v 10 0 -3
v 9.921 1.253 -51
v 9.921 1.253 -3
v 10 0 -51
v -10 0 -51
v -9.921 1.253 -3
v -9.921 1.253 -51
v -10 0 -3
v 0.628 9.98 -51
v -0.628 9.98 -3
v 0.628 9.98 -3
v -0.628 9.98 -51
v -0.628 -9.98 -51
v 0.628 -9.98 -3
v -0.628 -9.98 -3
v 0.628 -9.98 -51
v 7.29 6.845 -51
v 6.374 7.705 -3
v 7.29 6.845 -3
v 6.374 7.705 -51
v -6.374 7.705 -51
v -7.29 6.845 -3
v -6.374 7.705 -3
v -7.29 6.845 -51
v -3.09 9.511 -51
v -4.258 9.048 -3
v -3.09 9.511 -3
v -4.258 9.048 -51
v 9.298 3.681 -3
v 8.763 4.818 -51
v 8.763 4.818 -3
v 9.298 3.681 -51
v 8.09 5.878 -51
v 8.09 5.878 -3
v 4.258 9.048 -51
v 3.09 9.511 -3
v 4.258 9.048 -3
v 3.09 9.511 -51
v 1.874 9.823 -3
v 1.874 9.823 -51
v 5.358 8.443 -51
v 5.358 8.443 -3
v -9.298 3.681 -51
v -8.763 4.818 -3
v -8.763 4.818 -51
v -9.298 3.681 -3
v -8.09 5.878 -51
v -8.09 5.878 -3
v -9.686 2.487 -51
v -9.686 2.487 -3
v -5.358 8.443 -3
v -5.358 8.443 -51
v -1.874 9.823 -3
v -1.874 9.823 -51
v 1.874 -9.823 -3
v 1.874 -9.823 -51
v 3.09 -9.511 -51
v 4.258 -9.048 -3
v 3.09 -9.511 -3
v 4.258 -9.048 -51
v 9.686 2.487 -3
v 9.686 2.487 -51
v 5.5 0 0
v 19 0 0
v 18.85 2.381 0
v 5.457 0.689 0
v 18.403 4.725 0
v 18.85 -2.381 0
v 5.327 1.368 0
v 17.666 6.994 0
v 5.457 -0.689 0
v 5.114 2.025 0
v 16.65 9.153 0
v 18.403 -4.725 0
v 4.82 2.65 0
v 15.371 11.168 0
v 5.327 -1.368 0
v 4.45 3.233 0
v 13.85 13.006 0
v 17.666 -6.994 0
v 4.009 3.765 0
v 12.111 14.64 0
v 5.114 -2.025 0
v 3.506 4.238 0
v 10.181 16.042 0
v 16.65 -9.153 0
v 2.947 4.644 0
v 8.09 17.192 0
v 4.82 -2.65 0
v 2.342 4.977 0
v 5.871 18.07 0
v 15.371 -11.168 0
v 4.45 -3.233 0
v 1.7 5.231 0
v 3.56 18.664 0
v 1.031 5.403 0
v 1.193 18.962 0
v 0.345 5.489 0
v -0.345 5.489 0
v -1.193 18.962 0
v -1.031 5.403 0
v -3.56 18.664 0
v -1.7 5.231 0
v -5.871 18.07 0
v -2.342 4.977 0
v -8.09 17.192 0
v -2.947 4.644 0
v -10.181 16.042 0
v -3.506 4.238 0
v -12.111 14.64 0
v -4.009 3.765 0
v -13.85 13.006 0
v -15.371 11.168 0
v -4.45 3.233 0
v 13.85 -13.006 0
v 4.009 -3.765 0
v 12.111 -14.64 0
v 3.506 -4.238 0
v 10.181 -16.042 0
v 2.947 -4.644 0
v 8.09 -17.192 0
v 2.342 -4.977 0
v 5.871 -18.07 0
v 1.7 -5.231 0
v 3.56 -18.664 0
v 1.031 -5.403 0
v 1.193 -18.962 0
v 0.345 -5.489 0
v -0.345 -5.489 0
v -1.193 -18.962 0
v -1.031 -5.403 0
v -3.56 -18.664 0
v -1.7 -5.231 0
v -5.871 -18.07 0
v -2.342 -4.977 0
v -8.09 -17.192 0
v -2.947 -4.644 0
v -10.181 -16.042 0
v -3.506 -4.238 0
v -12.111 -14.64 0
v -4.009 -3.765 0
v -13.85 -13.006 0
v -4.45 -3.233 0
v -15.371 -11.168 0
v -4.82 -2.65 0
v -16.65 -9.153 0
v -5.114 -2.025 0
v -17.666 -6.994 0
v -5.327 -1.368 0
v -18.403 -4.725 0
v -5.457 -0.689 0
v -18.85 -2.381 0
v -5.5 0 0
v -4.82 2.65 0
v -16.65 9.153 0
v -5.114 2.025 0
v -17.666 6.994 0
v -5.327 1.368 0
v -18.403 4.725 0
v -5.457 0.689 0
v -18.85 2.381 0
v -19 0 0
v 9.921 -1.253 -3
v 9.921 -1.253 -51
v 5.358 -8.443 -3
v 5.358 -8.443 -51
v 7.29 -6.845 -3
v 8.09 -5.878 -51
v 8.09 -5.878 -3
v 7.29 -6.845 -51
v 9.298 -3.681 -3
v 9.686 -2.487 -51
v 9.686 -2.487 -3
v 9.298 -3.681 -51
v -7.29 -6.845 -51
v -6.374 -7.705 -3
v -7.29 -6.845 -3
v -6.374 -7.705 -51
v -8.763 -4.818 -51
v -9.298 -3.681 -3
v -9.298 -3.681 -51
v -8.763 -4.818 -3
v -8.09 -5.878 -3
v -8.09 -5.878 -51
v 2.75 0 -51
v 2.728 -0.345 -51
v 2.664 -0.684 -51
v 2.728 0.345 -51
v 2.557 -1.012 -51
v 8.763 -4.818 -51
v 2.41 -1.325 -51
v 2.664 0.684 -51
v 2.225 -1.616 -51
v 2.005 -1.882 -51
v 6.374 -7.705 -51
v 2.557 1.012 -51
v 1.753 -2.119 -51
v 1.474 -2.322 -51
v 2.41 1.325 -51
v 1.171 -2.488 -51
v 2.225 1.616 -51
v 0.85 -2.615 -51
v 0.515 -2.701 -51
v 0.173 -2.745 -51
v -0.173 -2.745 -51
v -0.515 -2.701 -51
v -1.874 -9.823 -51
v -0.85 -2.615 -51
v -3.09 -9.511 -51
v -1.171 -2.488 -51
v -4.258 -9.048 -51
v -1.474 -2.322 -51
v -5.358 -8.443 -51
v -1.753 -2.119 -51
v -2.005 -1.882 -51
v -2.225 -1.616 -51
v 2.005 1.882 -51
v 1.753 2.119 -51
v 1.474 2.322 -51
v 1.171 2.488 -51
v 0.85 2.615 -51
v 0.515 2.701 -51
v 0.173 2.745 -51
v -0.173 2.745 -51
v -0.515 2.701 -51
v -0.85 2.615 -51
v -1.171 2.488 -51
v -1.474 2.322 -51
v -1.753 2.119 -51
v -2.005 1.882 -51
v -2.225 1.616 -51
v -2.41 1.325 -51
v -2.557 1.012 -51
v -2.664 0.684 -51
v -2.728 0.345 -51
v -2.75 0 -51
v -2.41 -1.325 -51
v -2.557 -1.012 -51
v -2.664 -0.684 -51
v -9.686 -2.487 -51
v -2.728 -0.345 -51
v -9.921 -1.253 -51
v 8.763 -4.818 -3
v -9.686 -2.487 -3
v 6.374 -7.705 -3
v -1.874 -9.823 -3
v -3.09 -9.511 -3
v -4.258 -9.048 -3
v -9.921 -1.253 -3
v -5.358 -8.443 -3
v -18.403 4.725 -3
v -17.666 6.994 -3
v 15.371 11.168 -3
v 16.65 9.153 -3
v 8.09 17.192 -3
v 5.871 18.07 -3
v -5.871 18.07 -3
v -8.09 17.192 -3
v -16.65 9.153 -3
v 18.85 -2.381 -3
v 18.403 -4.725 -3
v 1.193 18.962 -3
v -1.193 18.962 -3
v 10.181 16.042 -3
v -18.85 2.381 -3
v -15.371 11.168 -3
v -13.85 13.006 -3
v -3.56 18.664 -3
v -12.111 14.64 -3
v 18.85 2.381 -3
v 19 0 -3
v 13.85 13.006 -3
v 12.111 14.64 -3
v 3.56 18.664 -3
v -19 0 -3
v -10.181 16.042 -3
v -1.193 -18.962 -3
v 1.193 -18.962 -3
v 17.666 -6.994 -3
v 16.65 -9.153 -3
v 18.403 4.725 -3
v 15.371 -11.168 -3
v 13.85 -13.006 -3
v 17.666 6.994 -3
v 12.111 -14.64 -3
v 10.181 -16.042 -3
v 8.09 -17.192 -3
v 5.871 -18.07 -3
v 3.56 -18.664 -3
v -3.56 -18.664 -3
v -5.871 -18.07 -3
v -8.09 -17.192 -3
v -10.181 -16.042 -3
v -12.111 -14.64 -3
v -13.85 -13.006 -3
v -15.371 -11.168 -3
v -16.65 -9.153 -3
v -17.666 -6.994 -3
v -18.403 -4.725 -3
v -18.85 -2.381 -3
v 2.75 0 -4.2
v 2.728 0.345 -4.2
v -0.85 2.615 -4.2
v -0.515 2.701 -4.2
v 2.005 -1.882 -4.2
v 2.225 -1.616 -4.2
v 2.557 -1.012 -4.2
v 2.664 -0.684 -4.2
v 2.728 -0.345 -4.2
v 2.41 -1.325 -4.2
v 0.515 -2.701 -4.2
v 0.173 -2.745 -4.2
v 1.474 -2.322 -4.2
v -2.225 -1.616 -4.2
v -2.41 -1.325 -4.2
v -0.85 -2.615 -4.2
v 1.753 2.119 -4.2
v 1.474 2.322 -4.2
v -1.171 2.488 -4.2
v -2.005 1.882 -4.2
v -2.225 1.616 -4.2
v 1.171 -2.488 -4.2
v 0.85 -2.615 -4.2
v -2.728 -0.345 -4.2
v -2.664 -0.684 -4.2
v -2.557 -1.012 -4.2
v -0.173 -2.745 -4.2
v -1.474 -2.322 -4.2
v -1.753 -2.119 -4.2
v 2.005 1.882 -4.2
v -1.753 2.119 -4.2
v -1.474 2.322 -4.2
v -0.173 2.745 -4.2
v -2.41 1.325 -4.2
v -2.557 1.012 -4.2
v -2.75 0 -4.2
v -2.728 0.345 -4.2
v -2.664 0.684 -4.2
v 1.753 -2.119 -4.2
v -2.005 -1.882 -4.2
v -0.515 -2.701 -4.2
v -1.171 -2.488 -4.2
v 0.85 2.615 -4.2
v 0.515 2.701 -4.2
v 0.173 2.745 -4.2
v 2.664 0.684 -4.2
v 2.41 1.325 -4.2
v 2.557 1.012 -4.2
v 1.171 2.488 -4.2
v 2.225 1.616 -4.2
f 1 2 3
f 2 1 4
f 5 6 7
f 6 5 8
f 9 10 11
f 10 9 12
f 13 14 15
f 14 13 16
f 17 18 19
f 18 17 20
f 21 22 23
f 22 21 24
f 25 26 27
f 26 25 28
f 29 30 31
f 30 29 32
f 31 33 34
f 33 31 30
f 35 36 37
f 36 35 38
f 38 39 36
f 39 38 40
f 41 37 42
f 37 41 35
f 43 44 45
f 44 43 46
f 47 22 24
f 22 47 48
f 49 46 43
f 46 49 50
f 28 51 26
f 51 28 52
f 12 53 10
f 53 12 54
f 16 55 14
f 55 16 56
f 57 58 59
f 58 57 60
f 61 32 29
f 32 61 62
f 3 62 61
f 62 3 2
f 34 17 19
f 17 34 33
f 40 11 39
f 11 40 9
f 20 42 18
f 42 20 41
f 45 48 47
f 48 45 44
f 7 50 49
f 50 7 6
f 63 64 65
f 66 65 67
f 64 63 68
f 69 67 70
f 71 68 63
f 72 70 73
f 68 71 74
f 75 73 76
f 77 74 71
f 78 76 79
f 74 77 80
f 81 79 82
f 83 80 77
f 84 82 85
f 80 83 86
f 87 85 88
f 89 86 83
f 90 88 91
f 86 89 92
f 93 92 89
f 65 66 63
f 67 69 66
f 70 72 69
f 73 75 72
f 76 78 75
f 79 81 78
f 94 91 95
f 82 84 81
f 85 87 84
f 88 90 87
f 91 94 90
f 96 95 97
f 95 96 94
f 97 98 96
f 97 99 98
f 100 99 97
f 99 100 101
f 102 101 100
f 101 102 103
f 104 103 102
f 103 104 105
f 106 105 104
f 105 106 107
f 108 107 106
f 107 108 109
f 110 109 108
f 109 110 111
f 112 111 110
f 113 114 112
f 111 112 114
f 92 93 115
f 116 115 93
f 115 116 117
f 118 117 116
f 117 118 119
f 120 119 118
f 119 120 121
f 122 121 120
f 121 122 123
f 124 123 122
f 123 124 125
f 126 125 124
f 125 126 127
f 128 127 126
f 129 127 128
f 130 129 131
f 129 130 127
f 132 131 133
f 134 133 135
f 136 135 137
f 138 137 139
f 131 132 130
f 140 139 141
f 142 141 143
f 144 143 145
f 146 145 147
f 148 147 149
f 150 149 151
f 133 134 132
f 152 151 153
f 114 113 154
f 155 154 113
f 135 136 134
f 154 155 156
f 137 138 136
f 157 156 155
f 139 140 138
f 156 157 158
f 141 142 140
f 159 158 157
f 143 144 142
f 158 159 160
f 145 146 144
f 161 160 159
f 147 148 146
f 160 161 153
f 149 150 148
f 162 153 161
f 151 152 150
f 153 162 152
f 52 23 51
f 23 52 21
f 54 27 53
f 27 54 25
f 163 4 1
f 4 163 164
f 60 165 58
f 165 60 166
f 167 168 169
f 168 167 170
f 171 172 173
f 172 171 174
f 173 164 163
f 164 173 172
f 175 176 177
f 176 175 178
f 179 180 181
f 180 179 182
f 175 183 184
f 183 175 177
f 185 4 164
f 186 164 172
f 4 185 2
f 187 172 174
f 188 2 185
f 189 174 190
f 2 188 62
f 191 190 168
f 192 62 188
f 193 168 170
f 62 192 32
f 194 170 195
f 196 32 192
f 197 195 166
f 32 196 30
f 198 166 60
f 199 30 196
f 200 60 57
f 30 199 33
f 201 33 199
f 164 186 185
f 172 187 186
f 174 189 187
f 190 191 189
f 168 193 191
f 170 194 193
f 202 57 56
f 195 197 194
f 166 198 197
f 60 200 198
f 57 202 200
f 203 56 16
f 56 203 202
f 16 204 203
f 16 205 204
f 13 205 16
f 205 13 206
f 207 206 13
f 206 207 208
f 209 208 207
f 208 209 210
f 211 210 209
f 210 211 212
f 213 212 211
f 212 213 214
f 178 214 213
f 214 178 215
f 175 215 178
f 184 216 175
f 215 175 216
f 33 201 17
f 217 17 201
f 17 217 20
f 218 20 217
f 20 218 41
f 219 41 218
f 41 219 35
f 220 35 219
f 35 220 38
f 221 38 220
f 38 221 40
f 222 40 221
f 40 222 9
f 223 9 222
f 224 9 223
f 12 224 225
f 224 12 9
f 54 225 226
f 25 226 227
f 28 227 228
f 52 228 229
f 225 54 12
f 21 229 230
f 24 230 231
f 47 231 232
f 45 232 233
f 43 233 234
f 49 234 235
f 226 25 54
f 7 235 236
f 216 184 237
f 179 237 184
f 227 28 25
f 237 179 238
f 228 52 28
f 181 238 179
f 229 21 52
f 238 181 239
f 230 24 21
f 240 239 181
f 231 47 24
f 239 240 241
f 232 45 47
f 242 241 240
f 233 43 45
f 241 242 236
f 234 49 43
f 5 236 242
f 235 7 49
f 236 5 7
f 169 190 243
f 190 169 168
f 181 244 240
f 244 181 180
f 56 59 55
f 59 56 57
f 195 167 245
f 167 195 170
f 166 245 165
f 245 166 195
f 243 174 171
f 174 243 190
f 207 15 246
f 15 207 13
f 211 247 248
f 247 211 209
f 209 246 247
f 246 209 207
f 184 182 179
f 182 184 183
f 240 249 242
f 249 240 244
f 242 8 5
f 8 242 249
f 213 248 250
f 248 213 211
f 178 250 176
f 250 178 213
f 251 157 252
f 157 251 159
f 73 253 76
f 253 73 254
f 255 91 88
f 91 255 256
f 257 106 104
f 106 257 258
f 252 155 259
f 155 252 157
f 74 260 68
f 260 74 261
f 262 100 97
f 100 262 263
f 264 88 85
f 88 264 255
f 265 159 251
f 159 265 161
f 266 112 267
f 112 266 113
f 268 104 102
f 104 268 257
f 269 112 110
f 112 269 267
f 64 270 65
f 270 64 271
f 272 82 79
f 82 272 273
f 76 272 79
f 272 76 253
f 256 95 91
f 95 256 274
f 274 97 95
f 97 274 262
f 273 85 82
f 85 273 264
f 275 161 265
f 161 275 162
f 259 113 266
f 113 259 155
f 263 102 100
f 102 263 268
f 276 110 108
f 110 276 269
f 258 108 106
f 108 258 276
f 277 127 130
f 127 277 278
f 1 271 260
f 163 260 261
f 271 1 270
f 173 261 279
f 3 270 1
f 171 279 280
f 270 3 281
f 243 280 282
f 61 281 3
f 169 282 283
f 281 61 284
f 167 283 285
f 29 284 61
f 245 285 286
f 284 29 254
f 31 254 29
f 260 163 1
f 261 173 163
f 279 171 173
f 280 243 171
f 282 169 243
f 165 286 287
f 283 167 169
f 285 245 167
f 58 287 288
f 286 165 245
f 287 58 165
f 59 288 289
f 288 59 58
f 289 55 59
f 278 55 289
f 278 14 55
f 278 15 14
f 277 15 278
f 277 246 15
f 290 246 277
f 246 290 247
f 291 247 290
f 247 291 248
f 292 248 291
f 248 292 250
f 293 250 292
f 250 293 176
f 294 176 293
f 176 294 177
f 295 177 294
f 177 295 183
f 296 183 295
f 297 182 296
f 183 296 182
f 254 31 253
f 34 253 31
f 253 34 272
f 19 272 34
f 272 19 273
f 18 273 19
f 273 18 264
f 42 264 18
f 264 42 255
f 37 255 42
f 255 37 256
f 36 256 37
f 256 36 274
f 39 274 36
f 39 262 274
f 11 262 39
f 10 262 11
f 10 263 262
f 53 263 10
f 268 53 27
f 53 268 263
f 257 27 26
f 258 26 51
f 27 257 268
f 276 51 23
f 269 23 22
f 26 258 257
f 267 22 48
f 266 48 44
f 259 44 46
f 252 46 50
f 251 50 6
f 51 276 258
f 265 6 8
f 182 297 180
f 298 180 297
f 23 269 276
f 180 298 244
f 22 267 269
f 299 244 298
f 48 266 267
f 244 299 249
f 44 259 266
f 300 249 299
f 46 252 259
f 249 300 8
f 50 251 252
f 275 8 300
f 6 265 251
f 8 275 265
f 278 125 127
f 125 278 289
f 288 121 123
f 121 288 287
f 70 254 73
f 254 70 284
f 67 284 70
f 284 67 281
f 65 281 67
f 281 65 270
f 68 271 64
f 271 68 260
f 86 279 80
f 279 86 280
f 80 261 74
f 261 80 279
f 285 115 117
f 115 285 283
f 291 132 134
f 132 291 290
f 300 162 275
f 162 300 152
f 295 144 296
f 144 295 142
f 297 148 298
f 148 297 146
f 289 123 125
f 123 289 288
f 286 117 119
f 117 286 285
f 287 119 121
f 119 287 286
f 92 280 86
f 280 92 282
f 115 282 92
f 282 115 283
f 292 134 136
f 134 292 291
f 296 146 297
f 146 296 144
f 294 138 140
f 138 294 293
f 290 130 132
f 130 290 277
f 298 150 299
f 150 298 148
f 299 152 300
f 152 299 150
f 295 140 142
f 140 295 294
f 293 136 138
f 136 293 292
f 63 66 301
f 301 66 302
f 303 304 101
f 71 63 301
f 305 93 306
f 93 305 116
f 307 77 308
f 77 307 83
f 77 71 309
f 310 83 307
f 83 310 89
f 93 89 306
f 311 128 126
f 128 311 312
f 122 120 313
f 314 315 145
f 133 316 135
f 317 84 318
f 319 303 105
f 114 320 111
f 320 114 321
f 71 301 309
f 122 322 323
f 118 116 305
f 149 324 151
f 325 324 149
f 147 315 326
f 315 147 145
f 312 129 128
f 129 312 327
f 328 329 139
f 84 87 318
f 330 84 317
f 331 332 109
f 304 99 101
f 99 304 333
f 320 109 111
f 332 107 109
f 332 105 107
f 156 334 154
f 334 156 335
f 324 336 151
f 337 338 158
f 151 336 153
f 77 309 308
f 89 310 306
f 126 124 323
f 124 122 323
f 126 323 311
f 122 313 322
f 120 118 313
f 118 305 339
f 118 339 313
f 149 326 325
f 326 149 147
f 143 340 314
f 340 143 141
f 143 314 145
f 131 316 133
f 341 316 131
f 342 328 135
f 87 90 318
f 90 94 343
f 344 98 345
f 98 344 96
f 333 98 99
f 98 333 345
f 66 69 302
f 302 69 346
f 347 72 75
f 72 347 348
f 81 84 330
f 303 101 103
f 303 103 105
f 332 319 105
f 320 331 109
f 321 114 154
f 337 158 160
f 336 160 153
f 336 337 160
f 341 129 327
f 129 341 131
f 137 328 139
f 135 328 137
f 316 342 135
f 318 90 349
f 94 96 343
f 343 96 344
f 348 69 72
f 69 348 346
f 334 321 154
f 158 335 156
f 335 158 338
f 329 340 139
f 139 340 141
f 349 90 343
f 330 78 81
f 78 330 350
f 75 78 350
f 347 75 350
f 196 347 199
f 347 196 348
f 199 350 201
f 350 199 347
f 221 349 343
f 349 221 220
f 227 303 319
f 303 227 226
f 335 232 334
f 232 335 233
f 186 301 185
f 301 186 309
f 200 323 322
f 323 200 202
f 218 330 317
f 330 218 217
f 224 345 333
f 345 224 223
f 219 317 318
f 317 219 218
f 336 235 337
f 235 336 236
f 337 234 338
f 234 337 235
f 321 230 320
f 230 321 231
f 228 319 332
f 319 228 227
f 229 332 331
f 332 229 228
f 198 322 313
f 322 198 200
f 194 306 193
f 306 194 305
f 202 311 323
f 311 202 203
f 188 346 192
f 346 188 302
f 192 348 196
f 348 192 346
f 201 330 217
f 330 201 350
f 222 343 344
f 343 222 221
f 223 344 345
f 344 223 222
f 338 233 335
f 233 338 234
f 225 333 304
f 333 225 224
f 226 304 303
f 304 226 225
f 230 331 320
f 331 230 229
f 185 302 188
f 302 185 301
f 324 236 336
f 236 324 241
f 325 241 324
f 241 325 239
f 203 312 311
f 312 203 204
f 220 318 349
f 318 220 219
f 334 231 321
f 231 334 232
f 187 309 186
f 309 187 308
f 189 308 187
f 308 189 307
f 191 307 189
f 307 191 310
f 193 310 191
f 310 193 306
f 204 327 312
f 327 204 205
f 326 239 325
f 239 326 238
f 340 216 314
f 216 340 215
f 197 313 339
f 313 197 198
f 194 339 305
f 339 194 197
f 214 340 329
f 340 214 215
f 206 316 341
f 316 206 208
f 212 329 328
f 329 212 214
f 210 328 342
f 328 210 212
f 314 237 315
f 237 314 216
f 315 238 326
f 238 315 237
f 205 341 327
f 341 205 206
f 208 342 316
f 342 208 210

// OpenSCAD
$fn = 50;


difference() {
	union() {
		translate(v = [0, 0, -51.0000000000]) {
			cylinder(h = 51, r = 10.0000000000);
		}
		translate(v = [0, 0, -3.0000000000]) {
			cylinder(h = 3, r = 19.0000000000);
		}
	}
	union() {
		translate(v = [0, 0, 0]) {
			rotate(a = [0, 0, 0]) {
				difference() {
					union() {
						#translate(v = [0, 0, -51.0000000000]) {
							cylinder(h = 51, r = 2.2500000000);
						}
						#translate(v = [0, 0, -4.2000000000]) {
							cylinder(h = 4.2000000000, r1 = 2.7500000000, r2 = 5.5000000000);
						}
						#translate(v = [0, 0, -51.0000000000]) {
							cylinder(h = 51, r = 2.7500000000);
						}
						#translate(v = [0, 0, -51.0000000000]) {
							cylinder(h = 51, r = 2.2500000000);
						}
					}
					union();
				}
			}
		}
	}
}
